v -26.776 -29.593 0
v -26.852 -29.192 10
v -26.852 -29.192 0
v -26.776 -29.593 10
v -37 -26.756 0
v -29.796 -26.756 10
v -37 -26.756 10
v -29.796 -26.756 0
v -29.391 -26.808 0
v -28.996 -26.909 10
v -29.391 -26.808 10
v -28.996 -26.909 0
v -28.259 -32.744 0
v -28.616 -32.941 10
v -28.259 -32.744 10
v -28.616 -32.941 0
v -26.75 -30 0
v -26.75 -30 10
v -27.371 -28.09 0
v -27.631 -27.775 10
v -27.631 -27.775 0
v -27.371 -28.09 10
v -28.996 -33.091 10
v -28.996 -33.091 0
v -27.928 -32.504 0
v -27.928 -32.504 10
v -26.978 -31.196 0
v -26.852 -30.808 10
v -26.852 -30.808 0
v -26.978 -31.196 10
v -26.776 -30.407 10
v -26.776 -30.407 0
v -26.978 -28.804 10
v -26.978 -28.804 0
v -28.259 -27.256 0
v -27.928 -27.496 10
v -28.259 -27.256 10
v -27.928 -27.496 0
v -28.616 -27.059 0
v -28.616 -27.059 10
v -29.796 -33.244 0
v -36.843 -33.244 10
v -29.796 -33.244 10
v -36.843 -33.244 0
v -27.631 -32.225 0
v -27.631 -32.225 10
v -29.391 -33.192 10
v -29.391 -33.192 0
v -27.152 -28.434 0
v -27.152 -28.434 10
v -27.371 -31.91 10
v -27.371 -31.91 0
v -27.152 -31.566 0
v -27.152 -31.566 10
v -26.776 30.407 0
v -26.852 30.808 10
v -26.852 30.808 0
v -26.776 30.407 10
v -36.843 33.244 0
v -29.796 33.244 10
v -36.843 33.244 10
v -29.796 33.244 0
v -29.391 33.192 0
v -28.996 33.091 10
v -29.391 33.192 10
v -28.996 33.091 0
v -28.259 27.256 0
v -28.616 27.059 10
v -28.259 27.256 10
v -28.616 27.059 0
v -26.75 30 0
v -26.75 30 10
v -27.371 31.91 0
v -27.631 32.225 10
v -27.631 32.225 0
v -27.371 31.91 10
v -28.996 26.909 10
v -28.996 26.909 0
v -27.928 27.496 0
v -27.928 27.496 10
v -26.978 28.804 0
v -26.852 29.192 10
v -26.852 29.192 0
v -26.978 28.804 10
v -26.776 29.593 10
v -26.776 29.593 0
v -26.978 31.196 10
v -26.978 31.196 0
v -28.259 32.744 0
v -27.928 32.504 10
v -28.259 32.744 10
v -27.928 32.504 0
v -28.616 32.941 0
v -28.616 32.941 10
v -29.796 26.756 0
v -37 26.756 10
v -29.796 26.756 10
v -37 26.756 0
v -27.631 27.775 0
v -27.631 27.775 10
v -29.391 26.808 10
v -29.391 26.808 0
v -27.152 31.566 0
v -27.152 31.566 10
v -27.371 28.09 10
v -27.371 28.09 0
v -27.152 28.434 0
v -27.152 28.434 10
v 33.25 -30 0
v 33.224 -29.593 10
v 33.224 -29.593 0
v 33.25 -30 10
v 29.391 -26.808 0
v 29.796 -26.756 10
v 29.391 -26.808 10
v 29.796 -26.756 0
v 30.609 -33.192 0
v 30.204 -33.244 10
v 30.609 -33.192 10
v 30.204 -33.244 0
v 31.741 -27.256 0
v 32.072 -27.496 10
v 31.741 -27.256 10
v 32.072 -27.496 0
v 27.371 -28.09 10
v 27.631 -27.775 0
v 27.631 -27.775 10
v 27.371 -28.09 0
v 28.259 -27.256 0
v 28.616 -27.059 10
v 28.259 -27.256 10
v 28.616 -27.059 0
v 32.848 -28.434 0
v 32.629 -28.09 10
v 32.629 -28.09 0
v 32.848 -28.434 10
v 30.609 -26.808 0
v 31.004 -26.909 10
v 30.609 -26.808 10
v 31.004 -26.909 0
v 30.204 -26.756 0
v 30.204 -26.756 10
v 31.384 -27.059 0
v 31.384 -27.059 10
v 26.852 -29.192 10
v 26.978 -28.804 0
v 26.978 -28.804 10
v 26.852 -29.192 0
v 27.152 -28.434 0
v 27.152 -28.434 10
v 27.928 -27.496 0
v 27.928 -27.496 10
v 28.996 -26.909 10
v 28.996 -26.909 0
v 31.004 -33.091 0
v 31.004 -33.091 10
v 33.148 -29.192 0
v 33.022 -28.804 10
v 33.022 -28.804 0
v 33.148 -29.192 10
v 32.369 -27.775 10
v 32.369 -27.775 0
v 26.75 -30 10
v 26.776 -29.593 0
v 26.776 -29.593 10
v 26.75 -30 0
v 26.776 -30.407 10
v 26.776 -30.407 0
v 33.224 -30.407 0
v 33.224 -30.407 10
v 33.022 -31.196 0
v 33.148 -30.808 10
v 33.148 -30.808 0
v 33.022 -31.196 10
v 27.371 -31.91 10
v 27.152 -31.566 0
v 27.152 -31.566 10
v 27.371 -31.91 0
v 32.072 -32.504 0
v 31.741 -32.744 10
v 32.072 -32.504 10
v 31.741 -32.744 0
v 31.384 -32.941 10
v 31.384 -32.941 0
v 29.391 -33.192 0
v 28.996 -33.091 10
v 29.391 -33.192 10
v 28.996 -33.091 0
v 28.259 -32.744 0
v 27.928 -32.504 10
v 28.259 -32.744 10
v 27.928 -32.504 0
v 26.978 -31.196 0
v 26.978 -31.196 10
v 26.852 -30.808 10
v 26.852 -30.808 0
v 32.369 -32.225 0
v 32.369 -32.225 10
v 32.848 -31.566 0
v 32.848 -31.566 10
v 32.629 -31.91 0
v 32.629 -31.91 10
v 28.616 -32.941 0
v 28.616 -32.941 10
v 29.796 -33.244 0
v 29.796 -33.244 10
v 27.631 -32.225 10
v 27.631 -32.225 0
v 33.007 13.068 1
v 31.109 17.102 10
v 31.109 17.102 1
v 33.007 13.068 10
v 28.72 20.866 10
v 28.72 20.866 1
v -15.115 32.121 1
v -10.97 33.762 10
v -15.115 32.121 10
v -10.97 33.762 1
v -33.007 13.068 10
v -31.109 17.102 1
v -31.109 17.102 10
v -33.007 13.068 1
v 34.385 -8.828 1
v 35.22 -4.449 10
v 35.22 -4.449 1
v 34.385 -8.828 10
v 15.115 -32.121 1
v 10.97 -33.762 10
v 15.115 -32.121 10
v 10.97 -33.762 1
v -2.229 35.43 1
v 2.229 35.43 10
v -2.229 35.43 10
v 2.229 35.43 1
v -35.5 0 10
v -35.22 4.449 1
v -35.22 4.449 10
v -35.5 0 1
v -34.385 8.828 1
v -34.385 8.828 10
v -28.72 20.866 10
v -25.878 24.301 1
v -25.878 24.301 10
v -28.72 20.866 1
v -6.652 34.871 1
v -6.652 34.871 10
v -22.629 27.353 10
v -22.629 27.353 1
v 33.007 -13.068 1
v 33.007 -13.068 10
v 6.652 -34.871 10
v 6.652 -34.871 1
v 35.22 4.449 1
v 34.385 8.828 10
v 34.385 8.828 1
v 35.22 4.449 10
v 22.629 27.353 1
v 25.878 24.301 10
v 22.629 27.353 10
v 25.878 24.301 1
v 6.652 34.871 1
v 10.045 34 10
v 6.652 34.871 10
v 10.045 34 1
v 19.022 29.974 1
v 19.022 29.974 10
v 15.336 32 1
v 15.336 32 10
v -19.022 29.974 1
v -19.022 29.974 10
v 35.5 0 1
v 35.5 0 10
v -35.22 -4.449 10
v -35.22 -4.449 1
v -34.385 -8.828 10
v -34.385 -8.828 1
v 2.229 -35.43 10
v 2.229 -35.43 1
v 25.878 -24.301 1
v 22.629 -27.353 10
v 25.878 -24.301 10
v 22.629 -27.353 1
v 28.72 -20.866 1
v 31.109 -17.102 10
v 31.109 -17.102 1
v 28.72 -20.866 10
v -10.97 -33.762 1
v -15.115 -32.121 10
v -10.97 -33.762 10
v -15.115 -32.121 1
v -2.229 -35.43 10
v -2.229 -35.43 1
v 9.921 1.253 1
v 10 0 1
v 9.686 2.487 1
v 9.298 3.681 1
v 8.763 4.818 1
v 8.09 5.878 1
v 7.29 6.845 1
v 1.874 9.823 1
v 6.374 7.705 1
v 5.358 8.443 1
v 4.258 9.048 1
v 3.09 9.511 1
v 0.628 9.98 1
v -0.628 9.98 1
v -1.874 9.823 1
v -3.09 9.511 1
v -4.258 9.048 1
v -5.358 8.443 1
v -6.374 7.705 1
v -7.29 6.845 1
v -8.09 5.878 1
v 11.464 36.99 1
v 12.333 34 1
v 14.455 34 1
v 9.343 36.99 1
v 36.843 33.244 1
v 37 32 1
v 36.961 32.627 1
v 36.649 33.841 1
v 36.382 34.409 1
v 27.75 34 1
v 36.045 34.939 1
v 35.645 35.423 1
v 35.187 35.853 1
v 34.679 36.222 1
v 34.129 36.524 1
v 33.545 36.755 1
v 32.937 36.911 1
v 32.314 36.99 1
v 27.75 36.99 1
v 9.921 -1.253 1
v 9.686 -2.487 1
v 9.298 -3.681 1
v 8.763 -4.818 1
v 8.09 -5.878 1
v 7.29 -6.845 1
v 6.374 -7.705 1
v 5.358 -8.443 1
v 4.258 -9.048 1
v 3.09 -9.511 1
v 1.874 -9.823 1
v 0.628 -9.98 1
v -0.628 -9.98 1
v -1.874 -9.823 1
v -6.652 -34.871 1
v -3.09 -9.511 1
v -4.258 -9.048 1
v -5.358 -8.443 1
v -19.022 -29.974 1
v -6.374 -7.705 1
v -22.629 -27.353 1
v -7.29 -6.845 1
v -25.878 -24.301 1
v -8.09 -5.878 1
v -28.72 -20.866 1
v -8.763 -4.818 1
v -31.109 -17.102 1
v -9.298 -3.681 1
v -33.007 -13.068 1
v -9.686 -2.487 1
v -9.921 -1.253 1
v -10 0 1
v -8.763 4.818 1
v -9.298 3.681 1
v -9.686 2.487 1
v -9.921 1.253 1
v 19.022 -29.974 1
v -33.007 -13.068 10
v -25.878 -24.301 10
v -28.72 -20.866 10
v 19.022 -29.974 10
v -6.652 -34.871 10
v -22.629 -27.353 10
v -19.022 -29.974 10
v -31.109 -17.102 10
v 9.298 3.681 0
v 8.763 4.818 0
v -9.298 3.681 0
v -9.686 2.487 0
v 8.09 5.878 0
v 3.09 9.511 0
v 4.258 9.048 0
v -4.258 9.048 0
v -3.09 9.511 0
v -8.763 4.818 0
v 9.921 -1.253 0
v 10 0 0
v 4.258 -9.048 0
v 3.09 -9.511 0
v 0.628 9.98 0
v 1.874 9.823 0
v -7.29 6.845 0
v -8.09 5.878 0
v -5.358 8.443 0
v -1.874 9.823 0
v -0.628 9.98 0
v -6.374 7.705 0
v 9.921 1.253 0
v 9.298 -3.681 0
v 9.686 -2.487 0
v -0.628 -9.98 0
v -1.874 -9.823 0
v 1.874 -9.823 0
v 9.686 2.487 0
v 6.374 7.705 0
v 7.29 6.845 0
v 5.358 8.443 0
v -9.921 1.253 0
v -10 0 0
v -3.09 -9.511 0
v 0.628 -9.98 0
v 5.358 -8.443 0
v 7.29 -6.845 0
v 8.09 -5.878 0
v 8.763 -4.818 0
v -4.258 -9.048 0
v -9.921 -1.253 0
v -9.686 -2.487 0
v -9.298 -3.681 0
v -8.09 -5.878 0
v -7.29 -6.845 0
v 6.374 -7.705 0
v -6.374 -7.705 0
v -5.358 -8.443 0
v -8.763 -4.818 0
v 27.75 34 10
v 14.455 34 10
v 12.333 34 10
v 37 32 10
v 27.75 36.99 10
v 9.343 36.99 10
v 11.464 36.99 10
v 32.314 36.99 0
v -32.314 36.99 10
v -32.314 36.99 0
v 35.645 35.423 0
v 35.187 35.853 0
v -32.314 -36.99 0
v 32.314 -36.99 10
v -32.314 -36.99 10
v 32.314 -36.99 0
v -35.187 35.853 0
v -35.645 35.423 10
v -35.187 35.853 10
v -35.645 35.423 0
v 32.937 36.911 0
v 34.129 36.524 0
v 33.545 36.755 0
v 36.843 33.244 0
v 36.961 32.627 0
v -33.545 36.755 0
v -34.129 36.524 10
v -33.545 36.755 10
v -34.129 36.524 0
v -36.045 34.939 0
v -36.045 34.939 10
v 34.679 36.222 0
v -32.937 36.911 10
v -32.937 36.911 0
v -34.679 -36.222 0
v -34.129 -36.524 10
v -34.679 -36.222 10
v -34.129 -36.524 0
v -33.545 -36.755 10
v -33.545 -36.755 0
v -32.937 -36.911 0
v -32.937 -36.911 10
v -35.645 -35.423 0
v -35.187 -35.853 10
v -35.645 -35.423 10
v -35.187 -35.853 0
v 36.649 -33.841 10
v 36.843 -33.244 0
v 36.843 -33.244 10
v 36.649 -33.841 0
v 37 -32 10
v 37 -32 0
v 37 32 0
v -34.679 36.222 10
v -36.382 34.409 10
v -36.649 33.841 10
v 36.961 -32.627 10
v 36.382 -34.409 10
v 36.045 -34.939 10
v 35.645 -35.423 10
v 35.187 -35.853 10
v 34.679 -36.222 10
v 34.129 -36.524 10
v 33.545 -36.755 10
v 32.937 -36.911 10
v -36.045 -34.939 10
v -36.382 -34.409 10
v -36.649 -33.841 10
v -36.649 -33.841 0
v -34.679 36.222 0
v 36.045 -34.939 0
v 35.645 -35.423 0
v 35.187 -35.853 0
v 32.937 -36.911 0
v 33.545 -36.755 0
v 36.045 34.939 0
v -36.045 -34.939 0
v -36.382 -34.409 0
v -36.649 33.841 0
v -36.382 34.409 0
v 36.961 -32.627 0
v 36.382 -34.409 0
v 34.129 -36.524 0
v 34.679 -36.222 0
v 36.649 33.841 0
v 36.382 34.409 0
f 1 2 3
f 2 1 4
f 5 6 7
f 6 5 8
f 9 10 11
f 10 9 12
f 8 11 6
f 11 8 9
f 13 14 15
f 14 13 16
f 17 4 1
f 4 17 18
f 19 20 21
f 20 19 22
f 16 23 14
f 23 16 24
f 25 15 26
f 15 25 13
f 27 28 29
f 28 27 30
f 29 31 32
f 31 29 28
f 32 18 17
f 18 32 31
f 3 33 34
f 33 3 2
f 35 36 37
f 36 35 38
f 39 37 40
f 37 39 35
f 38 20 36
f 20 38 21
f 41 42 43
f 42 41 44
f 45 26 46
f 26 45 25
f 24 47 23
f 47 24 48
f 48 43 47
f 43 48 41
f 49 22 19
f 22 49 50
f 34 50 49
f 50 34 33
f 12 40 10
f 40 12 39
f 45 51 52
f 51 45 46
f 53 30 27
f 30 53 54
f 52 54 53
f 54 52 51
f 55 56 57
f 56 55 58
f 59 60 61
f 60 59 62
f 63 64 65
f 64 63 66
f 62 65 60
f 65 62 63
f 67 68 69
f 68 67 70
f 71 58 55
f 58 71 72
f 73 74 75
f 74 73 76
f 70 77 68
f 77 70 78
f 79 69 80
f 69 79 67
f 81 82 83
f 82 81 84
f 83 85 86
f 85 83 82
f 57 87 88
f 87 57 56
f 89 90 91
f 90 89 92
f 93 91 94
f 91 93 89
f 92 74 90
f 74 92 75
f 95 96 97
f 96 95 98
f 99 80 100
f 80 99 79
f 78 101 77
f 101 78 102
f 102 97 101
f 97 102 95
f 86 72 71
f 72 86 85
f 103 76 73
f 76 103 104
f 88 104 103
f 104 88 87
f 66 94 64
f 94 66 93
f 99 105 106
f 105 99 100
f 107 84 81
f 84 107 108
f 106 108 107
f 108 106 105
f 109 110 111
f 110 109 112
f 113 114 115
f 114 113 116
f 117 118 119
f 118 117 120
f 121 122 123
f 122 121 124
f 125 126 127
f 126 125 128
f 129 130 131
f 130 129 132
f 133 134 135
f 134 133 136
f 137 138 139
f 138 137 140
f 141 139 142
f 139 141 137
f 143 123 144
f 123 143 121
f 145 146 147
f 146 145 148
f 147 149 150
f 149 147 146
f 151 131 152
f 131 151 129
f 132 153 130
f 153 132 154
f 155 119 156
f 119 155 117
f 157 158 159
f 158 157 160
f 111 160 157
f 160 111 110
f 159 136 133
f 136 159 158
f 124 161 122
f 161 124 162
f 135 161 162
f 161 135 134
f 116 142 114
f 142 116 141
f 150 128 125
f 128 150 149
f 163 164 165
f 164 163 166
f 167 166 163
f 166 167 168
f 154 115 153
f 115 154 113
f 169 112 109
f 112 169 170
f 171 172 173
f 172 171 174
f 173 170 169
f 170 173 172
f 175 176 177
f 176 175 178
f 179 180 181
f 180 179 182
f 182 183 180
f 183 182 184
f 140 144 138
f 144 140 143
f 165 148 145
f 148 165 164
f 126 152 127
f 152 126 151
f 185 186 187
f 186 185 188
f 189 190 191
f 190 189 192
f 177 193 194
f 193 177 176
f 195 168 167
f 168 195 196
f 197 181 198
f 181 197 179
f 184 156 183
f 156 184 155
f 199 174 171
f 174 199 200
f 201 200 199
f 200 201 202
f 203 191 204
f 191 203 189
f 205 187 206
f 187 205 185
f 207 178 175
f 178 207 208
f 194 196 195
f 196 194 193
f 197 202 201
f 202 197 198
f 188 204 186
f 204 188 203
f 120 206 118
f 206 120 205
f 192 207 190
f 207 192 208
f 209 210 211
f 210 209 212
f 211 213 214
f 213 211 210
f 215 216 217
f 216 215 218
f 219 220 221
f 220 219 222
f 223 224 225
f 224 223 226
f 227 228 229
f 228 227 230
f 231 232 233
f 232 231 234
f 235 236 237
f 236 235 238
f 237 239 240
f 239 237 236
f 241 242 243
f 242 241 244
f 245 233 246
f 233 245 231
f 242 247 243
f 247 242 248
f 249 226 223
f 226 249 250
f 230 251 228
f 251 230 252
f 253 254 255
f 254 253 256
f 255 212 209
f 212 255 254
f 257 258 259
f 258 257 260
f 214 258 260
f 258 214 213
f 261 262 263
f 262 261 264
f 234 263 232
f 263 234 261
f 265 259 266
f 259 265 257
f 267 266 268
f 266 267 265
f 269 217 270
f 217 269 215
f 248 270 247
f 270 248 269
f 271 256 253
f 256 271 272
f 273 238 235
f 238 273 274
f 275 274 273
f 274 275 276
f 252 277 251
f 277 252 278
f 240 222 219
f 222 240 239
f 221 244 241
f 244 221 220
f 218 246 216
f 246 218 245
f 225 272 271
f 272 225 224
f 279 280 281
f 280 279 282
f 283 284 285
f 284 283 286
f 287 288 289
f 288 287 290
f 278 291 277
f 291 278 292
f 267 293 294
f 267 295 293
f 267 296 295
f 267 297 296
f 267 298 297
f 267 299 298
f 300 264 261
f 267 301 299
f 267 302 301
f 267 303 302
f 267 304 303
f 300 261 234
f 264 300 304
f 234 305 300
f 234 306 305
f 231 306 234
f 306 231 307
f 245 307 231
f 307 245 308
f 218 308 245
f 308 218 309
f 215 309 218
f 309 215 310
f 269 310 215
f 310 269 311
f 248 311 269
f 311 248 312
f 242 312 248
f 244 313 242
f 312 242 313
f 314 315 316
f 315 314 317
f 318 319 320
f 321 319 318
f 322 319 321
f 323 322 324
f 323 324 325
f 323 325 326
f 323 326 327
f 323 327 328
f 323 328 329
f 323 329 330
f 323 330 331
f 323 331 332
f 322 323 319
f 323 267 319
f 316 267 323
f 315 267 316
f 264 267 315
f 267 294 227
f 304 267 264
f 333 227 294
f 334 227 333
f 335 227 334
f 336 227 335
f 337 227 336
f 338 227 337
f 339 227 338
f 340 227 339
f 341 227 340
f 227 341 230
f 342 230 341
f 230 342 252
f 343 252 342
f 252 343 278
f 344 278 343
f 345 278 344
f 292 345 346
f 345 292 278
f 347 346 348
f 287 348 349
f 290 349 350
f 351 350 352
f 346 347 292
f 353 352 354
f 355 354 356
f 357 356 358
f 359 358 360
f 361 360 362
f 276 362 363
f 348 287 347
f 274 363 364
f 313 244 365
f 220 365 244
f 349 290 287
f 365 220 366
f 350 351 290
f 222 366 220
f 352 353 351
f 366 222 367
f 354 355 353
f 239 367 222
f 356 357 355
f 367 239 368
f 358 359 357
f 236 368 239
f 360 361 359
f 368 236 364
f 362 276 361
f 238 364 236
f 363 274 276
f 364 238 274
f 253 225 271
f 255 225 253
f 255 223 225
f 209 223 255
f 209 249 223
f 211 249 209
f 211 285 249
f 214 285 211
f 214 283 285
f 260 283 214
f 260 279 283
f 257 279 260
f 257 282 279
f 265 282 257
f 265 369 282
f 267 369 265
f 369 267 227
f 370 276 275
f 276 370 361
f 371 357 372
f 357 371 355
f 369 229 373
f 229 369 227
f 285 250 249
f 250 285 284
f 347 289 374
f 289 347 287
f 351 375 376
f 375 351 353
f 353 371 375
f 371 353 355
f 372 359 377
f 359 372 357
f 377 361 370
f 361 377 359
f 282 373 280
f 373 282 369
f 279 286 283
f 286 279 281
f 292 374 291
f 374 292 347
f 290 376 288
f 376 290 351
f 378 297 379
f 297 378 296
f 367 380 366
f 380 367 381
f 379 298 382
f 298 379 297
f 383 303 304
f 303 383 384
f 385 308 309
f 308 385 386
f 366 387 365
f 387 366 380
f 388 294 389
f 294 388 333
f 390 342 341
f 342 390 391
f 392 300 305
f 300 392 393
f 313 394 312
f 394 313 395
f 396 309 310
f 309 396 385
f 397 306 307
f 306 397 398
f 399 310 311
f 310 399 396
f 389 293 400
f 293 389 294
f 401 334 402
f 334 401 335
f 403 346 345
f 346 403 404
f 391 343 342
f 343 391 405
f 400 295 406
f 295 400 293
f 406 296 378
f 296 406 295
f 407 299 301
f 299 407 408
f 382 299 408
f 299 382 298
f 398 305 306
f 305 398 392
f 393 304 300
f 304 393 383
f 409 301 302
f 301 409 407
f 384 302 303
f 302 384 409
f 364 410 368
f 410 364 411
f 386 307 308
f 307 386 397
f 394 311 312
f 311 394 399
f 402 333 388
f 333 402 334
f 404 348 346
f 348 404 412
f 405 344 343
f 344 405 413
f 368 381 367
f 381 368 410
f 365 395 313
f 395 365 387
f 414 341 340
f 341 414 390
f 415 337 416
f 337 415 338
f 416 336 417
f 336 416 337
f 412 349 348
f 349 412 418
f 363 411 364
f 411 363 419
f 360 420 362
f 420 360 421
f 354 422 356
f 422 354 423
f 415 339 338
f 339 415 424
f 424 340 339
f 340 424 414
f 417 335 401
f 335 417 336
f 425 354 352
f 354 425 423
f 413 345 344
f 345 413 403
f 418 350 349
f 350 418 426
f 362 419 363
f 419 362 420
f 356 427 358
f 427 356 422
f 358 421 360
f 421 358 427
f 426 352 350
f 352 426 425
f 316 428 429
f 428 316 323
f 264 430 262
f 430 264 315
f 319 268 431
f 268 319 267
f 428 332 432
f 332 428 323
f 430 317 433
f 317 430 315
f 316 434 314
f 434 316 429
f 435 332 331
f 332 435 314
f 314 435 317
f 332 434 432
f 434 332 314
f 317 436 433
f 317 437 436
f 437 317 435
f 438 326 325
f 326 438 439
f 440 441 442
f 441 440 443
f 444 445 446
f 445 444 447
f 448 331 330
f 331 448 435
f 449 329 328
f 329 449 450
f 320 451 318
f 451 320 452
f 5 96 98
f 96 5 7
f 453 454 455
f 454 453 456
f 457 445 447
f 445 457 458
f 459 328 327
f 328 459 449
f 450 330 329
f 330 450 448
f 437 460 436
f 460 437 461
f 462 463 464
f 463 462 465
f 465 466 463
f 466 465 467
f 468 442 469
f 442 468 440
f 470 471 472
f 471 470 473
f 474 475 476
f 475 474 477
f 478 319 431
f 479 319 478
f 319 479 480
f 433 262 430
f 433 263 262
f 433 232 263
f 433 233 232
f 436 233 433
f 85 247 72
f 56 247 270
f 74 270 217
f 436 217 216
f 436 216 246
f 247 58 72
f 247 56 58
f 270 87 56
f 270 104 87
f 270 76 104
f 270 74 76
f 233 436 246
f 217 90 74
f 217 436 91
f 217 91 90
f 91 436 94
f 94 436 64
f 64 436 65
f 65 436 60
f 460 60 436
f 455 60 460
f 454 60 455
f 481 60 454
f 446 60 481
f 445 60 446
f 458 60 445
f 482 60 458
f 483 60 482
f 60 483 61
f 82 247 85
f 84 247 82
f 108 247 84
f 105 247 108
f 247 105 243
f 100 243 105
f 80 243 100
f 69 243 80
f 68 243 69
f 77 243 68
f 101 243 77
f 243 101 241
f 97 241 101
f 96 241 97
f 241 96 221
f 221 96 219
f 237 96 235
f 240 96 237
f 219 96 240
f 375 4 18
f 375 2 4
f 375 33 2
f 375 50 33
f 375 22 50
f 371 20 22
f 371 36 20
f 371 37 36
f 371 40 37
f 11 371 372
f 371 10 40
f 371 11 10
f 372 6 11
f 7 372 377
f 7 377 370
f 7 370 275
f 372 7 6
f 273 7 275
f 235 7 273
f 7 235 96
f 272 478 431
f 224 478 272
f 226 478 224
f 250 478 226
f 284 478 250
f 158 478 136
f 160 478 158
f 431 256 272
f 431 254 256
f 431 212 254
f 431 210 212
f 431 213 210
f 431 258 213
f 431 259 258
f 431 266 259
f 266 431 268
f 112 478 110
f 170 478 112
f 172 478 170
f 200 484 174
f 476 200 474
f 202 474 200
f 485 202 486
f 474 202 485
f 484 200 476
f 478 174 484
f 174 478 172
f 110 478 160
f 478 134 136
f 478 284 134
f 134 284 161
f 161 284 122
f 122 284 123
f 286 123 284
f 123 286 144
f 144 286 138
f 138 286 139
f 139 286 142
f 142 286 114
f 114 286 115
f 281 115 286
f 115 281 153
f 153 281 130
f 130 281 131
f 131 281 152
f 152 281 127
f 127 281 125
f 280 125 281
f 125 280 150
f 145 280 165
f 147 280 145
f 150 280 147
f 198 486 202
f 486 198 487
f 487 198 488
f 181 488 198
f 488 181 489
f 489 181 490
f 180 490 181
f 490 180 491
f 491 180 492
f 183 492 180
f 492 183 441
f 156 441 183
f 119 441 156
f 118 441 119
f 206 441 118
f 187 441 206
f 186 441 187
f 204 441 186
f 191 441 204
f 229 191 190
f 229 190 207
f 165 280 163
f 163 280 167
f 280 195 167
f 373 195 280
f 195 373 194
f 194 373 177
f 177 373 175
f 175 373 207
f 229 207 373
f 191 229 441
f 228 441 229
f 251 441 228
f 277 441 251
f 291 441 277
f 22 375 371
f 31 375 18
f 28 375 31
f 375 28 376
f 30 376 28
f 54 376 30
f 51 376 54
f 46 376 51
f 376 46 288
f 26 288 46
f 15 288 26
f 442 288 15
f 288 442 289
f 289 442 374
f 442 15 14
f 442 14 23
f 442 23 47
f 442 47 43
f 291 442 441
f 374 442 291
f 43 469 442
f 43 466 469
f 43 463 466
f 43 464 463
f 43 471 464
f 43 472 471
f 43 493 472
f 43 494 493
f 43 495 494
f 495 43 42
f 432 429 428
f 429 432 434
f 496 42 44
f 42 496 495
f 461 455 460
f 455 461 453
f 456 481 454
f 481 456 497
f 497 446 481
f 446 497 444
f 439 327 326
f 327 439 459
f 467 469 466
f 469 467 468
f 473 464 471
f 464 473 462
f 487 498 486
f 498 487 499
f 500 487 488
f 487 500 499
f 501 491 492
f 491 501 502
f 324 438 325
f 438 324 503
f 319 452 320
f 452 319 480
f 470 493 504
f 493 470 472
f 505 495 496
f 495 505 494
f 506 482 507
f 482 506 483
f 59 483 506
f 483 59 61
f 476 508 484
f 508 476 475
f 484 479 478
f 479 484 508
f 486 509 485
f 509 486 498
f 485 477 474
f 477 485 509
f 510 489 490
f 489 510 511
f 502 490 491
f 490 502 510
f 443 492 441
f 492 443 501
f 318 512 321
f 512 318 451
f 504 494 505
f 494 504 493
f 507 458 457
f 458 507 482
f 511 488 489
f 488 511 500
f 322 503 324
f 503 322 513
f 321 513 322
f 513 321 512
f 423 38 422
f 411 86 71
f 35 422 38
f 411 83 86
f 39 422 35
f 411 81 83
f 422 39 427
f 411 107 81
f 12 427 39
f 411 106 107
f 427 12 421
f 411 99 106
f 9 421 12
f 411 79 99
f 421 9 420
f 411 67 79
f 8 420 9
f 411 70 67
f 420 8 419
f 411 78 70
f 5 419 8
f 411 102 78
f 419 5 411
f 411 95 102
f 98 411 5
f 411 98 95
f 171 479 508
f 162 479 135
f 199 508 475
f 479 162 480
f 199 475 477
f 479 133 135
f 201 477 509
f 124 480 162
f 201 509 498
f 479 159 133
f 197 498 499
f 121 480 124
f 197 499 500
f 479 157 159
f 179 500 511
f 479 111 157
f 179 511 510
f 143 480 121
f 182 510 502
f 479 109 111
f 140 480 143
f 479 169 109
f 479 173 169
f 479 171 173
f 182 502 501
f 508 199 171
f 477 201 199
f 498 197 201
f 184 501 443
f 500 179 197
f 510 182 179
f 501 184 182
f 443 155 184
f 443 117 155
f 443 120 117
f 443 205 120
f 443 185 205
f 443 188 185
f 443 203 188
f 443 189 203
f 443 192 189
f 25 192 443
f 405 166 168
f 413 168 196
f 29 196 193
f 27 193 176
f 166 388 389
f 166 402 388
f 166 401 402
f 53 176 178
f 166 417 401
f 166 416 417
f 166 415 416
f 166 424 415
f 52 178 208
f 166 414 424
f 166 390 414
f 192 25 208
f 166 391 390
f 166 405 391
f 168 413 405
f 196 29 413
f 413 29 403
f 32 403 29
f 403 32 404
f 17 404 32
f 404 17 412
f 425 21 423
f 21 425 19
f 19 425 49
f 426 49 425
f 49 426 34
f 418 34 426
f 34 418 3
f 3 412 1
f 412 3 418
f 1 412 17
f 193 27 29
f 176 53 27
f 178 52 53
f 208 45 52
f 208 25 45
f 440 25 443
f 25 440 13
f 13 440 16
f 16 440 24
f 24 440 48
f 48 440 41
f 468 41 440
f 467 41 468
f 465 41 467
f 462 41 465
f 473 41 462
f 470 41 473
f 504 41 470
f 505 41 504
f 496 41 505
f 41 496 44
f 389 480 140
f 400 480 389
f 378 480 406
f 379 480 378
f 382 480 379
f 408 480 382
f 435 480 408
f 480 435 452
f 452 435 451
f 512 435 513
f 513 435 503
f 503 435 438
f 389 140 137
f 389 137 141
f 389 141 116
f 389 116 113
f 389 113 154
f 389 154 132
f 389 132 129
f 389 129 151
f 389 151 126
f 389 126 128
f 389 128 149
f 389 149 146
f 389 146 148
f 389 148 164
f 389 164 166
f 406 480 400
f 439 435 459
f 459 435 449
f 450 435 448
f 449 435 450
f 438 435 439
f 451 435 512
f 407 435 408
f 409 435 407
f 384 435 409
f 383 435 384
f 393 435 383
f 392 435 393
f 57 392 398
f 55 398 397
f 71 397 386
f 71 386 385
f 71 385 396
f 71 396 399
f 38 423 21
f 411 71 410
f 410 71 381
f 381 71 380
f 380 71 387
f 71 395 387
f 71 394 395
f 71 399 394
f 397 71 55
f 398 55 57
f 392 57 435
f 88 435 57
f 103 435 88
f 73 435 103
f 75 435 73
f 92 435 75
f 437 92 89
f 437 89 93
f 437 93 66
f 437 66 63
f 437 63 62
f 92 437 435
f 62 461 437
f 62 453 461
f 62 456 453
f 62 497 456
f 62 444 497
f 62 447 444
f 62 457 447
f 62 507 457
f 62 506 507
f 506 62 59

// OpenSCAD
$fn = 50;


difference() {
	union() {
		translate(v = [0, 0, 0]) {
			rotate(a = [0, 0, 0]) {
				hull() {
					translate(v = [-32.0000000000, 32.0000000000, 0]) {
						rotate(a = [0, 0, 0]) {
							translate(v = [0, 0, 0]) {
								rotate(a = [0, 0, 0]) {
									cylinder(h = 10, r = 5);
								}
							}
						}
					}
					translate(v = [32.0000000000, 32.0000000000, 0]) {
						rotate(a = [0, 0, 0]) {
							translate(v = [0, 0, 0]) {
								rotate(a = [0, 0, 0]) {
									cylinder(h = 10, r = 5);
								}
							}
						}
					}
					translate(v = [-32.0000000000, -32.0000000000, 0]) {
						rotate(a = [0, 0, 0]) {
							translate(v = [0, 0, 0]) {
								rotate(a = [0, 0, 0]) {
									cylinder(h = 10, r = 5);
								}
							}
						}
					}
					translate(v = [32.0000000000, -32.0000000000, 0]) {
						rotate(a = [0, 0, 0]) {
							translate(v = [0, 0, 0]) {
								rotate(a = [0, 0, 0]) {
									cylinder(h = 10, r = 5);
								}
							}
						}
					}
				}
			}
		}
	}
	union() {
		translate(v = [-37.5000000000, -30.0000000000, -125]) {
			rotate(a = [0, 0, 0]) {
				hull() {
					translate(v = [7.5000000000, 0, 0]) {
						rotate(a = [0, 0, 0]) {
							translate(v = [0, 0, 0]) {
								rotate(a = [0, 0, 0]) {
									cylinder(h = 250, r = 3.2500000000);
								}
							}
						}
					}
					translate(v = [-7.5000000000, 0, 0]) {
						rotate(a = [0, 0, 0]) {
							translate(v = [0, 0, 0]) {
								rotate(a = [0, 0, 0]) {
									cylinder(h = 250, r = 3.2500000000);
								}
							}
						}
					}
				}
			}
		}
		translate(v = [-37.5000000000, 30.0000000000, -125]) {
			rotate(a = [0, 0, 0]) {
				hull() {
					translate(v = [7.5000000000, 0, 0]) {
						rotate(a = [0, 0, 0]) {
							translate(v = [0, 0, 0]) {
								rotate(a = [0, 0, 0]) {
									cylinder(h = 250, r = 3.2500000000);
								}
							}
						}
					}
					translate(v = [-7.5000000000, 0, 0]) {
						rotate(a = [0, 0, 0]) {
							translate(v = [0, 0, 0]) {
								rotate(a = [0, 0, 0]) {
									cylinder(h = 250, r = 3.2500000000);
								}
							}
						}
					}
				}
			}
		}
		translate(v = [30.0000000000, -30.0000000000, -125.0000000000]) {
			rotate(a = [0, 0, 0]) {
				cylinder(h = 250, r = 3.2500000000);
			}
		}
		translate(v = [0, 0, 1.0000000000]) {
			rotate(a = [0, 0, 0]) {
				cylinder(h = 12, r = 35.5000000000);
			}
		}
		translate(v = [0, 0, -5.0000000000]) {
			rotate(a = [0, 0, 0]) {
				cylinder(h = 10, r = 10.0000000000);
			}
		}
		translate(v = [0.0000000000, 32.0000000000, 1]) {
			rotate(a = [0, 0, 0]) {
				cube(size = [37.0000000000, 2, 12]);
			}
		}
		translate(v = [27.7500000000, 32.0000000000, 1]) {
			rotate(a = [0, 0, 0]) {
				cube(size = [9.2500000000, 5, 12]);
			}
		}
		translate(v = [8.5833333333, 37.7500000000, 1]) {
			rotate(a = [0, 0, -45]) {
				cube(size = [7.5000000000, 1.5000000000, 12]);
			}
		}
	}
}
